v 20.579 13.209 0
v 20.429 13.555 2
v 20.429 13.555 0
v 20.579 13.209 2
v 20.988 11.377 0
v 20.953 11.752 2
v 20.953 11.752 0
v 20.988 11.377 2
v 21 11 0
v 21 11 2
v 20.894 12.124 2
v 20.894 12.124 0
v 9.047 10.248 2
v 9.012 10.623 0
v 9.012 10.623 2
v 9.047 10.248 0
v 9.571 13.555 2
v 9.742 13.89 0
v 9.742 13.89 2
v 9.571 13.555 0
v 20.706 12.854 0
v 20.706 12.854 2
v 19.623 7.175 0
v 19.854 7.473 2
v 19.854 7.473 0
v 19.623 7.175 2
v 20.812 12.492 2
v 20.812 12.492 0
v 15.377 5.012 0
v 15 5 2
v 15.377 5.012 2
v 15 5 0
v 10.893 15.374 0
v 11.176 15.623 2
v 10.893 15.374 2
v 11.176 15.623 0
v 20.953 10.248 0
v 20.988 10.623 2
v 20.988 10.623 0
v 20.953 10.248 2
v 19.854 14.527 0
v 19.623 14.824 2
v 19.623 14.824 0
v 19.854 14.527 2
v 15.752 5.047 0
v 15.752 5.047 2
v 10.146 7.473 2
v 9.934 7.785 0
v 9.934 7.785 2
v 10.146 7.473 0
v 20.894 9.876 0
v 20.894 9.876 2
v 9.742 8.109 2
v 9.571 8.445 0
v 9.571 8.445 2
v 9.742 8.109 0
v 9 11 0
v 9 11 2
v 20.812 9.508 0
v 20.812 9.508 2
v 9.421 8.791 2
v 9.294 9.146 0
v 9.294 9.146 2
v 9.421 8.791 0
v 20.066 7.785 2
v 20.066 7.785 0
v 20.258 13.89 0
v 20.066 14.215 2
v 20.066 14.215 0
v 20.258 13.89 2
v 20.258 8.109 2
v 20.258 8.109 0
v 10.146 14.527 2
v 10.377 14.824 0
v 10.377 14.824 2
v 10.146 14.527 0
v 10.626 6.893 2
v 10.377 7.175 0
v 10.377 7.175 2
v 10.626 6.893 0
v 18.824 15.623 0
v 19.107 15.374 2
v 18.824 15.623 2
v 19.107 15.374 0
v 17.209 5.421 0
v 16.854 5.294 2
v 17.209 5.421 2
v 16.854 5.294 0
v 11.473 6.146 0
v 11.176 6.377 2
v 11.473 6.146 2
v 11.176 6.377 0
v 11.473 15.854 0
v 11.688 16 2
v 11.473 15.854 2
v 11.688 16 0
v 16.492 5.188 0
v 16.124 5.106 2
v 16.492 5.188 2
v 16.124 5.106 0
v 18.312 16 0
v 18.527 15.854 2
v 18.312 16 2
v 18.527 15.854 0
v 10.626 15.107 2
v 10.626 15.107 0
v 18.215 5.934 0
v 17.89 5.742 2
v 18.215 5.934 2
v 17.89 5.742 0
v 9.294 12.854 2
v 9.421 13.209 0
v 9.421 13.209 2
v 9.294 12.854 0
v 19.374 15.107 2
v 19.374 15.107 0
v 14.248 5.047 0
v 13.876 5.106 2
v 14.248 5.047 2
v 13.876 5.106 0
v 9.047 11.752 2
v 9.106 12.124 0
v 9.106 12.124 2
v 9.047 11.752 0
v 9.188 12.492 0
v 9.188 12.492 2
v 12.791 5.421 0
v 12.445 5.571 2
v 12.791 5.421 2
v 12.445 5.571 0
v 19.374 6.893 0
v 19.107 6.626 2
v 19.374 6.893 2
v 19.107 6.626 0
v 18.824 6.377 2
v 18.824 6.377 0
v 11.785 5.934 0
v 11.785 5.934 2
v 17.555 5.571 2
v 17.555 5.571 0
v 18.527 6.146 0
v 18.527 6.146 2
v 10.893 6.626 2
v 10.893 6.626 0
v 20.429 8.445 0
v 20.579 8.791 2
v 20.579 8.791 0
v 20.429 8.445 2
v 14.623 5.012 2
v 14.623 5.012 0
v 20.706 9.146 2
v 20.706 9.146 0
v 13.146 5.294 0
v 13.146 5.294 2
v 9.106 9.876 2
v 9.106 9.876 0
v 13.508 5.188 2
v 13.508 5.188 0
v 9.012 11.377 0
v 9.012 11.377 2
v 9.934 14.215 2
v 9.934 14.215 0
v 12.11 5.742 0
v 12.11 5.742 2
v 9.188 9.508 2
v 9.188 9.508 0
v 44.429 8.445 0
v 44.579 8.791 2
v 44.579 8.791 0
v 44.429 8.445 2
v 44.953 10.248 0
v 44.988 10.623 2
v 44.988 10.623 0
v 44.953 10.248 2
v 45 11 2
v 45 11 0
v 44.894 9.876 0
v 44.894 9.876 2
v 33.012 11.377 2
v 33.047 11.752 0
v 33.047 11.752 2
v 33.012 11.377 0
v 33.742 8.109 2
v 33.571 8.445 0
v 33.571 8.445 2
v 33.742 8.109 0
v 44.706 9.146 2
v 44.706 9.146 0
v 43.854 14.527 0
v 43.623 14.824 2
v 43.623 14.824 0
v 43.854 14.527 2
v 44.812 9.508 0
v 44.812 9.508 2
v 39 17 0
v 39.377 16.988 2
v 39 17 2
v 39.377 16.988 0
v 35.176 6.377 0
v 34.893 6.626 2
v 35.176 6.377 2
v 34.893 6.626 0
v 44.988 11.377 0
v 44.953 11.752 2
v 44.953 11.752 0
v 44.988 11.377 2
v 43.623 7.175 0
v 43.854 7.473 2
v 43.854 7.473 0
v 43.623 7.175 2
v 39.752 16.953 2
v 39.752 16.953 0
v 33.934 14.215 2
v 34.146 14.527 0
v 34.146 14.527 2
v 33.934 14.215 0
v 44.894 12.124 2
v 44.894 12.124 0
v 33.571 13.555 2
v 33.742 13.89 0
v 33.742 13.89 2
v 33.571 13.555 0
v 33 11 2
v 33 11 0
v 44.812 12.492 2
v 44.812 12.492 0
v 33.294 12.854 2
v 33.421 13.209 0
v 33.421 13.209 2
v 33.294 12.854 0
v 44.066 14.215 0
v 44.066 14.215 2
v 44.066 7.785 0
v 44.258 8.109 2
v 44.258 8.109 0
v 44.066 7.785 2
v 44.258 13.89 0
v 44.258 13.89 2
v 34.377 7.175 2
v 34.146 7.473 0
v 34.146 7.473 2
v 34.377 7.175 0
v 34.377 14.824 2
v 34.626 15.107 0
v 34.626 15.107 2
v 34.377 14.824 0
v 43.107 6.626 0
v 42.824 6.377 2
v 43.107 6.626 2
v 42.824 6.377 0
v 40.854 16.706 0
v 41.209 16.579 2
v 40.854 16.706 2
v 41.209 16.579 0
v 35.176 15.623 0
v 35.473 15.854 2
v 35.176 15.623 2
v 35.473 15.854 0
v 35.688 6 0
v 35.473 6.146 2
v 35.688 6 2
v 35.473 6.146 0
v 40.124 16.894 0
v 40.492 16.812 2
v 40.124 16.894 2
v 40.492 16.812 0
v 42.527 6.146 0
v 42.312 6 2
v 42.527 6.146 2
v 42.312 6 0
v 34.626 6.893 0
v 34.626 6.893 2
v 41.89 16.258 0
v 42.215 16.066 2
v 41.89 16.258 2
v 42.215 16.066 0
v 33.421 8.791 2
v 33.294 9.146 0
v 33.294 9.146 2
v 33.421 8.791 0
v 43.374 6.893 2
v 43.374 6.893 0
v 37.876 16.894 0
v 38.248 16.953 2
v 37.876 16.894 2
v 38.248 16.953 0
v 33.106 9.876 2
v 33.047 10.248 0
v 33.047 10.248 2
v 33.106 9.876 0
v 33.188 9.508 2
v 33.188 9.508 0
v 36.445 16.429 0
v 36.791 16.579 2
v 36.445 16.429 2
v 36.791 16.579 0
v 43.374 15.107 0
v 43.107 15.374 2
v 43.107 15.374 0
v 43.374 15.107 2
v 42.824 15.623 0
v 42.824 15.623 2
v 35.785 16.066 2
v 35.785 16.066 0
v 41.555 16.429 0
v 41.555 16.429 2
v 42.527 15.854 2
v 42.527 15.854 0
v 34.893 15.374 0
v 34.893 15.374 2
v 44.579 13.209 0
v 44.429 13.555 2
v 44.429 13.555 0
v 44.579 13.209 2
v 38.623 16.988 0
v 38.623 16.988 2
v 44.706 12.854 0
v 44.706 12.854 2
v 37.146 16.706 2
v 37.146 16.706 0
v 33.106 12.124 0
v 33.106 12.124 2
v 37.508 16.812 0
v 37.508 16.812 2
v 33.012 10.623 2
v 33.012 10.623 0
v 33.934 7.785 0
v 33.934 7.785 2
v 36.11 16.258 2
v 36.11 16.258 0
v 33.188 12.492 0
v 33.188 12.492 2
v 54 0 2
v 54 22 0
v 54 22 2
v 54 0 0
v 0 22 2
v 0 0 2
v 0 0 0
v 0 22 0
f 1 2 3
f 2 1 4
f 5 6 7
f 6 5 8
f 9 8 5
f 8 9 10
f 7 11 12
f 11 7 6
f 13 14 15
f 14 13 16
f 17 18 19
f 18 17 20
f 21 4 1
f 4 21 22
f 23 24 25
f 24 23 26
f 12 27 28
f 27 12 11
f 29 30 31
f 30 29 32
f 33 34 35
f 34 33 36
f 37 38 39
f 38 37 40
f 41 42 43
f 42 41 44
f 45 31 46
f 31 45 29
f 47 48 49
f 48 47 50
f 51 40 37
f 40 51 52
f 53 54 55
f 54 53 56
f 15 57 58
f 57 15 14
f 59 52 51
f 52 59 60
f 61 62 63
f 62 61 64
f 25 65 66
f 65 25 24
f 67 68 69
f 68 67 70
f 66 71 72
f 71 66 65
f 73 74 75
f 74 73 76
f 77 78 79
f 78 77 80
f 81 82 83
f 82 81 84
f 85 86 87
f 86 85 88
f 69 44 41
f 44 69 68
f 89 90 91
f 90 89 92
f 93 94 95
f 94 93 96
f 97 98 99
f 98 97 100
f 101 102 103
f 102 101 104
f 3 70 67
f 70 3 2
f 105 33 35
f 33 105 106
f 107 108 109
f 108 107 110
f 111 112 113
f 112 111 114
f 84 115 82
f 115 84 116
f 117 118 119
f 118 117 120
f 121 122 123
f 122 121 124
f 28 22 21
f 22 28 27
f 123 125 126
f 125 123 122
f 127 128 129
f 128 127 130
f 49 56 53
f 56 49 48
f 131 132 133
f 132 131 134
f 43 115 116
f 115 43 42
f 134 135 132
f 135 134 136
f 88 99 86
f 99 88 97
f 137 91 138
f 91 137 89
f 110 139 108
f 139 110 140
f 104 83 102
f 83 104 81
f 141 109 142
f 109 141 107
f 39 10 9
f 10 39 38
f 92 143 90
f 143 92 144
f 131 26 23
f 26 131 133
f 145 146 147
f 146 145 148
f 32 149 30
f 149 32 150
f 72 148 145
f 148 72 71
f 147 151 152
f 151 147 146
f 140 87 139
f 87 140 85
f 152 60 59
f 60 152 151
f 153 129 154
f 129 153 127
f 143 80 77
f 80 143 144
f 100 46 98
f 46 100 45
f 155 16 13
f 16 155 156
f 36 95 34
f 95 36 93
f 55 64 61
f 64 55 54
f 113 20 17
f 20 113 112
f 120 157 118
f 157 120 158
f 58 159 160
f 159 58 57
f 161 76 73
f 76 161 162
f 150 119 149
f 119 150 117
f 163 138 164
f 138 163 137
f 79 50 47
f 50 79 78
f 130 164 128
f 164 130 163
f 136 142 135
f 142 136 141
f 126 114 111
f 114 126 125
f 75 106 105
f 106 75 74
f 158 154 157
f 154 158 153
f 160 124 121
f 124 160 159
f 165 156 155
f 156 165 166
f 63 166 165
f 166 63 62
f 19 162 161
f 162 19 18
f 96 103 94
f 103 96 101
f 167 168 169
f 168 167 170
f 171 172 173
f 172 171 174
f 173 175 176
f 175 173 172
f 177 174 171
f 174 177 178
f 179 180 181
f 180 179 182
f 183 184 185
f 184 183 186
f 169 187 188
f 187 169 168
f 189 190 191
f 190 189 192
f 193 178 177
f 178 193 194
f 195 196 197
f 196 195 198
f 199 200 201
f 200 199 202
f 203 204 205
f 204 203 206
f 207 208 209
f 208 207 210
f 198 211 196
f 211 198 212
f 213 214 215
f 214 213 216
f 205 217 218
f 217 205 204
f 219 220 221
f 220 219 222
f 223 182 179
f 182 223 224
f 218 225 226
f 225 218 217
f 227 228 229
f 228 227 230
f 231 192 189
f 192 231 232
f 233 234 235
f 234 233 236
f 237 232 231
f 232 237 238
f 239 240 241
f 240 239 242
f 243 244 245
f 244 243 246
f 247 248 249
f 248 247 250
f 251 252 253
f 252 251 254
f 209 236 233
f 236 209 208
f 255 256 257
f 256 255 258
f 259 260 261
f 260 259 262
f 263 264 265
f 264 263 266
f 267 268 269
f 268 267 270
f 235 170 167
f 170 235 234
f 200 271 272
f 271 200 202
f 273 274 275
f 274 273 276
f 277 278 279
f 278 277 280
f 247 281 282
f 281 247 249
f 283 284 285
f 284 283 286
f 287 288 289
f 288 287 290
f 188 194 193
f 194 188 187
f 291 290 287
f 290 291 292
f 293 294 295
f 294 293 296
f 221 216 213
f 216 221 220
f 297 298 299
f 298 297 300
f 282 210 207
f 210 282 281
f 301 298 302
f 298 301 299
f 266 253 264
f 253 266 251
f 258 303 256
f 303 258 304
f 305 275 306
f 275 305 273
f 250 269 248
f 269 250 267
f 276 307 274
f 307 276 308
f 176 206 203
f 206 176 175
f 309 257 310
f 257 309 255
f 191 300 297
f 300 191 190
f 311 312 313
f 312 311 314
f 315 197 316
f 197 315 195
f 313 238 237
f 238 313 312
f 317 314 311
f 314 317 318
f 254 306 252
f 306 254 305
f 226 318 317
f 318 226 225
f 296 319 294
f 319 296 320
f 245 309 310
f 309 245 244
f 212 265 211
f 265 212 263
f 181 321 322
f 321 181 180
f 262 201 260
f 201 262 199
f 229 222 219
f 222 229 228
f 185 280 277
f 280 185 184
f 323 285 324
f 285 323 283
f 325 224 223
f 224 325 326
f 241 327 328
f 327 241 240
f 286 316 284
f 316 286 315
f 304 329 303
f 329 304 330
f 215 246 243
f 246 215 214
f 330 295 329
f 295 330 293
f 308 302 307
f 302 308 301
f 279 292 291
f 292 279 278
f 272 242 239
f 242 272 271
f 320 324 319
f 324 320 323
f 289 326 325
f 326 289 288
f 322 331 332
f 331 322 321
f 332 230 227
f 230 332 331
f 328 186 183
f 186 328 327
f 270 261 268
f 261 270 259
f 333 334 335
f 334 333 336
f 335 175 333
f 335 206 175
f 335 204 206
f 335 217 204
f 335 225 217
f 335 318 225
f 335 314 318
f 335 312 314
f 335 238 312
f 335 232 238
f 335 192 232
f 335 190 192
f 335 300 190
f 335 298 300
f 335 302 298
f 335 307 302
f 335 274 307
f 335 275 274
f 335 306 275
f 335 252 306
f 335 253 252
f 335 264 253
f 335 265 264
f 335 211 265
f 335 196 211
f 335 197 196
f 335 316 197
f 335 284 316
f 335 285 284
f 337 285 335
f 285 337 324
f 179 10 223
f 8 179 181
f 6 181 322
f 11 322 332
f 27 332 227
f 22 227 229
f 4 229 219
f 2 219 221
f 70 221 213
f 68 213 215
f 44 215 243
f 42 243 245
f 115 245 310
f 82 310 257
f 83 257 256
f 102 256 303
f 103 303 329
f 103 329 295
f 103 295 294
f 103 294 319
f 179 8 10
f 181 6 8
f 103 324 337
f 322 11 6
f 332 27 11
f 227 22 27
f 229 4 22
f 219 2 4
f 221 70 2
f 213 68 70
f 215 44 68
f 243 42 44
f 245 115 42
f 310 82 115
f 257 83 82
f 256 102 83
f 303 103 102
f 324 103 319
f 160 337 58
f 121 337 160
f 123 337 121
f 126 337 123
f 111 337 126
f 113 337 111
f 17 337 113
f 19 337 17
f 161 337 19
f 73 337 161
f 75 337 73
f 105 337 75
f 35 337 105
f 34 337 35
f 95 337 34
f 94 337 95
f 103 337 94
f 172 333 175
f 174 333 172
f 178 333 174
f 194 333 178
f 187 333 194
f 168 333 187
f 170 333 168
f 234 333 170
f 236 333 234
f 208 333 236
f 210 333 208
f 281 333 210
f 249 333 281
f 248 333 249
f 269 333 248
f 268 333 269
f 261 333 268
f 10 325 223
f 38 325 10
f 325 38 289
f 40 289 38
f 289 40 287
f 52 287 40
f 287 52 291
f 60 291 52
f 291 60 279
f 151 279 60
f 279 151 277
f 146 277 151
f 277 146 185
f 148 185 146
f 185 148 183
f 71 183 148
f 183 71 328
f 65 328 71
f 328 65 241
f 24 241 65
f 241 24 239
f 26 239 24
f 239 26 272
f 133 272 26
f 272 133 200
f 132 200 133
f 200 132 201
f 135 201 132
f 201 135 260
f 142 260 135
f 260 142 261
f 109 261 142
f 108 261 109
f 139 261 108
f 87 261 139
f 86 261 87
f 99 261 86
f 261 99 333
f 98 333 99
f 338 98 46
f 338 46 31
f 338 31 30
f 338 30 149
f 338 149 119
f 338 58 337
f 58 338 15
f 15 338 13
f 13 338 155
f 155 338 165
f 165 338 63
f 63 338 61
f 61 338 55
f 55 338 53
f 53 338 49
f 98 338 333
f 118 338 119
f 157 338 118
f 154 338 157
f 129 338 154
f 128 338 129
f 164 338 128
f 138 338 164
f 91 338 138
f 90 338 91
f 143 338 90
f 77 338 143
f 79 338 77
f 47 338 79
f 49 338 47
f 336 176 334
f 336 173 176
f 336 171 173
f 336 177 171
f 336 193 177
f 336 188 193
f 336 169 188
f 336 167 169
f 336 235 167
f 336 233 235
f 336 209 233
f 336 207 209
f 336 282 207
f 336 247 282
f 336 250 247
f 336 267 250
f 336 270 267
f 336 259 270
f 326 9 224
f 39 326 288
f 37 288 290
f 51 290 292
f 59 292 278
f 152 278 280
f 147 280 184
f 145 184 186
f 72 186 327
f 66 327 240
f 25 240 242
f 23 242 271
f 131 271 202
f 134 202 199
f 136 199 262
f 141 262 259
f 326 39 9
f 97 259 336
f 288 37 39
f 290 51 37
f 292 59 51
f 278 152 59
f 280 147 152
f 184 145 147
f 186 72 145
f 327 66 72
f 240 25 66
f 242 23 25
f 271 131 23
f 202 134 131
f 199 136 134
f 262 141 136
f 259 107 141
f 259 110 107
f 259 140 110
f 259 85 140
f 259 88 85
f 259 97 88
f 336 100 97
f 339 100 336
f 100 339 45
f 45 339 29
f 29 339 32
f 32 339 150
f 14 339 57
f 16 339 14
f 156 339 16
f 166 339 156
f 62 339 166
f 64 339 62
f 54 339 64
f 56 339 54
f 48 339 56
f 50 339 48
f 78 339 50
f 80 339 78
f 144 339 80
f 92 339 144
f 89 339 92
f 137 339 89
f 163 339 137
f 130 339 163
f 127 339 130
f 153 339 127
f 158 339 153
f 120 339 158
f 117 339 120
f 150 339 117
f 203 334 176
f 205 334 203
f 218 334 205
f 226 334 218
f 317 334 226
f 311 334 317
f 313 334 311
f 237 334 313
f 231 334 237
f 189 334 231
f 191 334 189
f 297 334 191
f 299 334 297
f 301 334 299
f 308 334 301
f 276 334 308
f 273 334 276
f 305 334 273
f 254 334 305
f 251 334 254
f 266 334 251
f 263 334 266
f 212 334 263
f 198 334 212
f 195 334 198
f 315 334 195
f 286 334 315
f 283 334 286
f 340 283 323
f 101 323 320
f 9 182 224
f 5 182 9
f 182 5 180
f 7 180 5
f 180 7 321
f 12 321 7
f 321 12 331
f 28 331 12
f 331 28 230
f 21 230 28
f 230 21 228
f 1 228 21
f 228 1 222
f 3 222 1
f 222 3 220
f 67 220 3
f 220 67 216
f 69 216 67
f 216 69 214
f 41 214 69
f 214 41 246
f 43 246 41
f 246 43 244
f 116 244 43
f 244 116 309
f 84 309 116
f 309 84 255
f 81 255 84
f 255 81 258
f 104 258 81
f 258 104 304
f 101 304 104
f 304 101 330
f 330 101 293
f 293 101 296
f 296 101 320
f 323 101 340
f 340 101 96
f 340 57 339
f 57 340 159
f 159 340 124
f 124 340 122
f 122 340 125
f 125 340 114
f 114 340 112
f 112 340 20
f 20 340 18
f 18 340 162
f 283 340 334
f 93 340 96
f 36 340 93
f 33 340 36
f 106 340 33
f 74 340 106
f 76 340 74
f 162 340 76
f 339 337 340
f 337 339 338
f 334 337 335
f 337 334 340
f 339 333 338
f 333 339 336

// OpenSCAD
// Generated by SolidPython 1.1.3 on 2025-06-09 14:13:41


difference() {
	cube(size = [54, 22, 2]);
	translate(v = [15.0000000000, 11.0000000000, -1]) {
		difference() {
			cylinder($fn = 100, d = 12, h = 4);
			translate(v = [-6.0000000000, 5, 0]) {
				cube(size = [12, 12, 4]);
			}
		}
	}
	translate(v = [39.0000000000, 11.0000000000, -1]) {
		mirror(v = [0, 1, 0]) {
			difference() {
				cylinder($fn = 100, d = 12, h = 4);
				translate(v = [-6.0000000000, 5, 0]) {
					cube(size = [12, 12, 4]);
				}
			}
		}
	}
}
/***********************************************
*********      SolidPython code:      **********
************************************************
 
# Working on Ubuntu 20.04 (zen) 2025-06-09 jmb
# pip install solidpython
# apt install openscad

# python3 fuse-plate.py && openscad -o fuse-plate.stl fuse-plate.scad

from solid import *
from solid.utils import *

# Dimensions
plate_length = 54
plate_width = 22
plate_thickness = 2
hole_diameter = 12
hole_radius = hole_diameter / 2
flat_offset = 5
hole_spacing = 24

def flat_hole():
    """Create a 12mm round hole with 1mm flat on one side."""
    cyl = cylinder(d=hole_diameter, h=plate_thickness + 2, segments=100)
    flat = cube([hole_diameter, hole_diameter, plate_thickness + 2])
    flat = translate([-hole_radius, flat_offset, 0])(flat)
    return difference()(cyl, flat)

def make_plate():
    # Base plate
    base = cube([plate_length, plate_width, plate_thickness])
    
    # Hole positions
    x1 = plate_length / 2 - hole_spacing / 2
    x2 = plate_length / 2 + hole_spacing / 2
    y = plate_width / 2

    # Holes with flats facing outward along long axis
    # hole1 = translate([x1, y, -1])(flat_hole())
    # hole2 = mirror([1, 0, 0])(translate([-x2, y, -1])(flat_hole()))

    hole1 = translate([x1,  y, -1])(flat_hole())
    #hole2 = mirror([0, 1, 0])(flat_hole())
    hole2 = translate([x2,  y, -1])(
            mirror([0, 1, 0])(flat_hole()))

    return difference()(base, hole1, hole2)

scad_render_to_file(make_plate(), 'fuse-plate.scad')
 
 
************************************************/
